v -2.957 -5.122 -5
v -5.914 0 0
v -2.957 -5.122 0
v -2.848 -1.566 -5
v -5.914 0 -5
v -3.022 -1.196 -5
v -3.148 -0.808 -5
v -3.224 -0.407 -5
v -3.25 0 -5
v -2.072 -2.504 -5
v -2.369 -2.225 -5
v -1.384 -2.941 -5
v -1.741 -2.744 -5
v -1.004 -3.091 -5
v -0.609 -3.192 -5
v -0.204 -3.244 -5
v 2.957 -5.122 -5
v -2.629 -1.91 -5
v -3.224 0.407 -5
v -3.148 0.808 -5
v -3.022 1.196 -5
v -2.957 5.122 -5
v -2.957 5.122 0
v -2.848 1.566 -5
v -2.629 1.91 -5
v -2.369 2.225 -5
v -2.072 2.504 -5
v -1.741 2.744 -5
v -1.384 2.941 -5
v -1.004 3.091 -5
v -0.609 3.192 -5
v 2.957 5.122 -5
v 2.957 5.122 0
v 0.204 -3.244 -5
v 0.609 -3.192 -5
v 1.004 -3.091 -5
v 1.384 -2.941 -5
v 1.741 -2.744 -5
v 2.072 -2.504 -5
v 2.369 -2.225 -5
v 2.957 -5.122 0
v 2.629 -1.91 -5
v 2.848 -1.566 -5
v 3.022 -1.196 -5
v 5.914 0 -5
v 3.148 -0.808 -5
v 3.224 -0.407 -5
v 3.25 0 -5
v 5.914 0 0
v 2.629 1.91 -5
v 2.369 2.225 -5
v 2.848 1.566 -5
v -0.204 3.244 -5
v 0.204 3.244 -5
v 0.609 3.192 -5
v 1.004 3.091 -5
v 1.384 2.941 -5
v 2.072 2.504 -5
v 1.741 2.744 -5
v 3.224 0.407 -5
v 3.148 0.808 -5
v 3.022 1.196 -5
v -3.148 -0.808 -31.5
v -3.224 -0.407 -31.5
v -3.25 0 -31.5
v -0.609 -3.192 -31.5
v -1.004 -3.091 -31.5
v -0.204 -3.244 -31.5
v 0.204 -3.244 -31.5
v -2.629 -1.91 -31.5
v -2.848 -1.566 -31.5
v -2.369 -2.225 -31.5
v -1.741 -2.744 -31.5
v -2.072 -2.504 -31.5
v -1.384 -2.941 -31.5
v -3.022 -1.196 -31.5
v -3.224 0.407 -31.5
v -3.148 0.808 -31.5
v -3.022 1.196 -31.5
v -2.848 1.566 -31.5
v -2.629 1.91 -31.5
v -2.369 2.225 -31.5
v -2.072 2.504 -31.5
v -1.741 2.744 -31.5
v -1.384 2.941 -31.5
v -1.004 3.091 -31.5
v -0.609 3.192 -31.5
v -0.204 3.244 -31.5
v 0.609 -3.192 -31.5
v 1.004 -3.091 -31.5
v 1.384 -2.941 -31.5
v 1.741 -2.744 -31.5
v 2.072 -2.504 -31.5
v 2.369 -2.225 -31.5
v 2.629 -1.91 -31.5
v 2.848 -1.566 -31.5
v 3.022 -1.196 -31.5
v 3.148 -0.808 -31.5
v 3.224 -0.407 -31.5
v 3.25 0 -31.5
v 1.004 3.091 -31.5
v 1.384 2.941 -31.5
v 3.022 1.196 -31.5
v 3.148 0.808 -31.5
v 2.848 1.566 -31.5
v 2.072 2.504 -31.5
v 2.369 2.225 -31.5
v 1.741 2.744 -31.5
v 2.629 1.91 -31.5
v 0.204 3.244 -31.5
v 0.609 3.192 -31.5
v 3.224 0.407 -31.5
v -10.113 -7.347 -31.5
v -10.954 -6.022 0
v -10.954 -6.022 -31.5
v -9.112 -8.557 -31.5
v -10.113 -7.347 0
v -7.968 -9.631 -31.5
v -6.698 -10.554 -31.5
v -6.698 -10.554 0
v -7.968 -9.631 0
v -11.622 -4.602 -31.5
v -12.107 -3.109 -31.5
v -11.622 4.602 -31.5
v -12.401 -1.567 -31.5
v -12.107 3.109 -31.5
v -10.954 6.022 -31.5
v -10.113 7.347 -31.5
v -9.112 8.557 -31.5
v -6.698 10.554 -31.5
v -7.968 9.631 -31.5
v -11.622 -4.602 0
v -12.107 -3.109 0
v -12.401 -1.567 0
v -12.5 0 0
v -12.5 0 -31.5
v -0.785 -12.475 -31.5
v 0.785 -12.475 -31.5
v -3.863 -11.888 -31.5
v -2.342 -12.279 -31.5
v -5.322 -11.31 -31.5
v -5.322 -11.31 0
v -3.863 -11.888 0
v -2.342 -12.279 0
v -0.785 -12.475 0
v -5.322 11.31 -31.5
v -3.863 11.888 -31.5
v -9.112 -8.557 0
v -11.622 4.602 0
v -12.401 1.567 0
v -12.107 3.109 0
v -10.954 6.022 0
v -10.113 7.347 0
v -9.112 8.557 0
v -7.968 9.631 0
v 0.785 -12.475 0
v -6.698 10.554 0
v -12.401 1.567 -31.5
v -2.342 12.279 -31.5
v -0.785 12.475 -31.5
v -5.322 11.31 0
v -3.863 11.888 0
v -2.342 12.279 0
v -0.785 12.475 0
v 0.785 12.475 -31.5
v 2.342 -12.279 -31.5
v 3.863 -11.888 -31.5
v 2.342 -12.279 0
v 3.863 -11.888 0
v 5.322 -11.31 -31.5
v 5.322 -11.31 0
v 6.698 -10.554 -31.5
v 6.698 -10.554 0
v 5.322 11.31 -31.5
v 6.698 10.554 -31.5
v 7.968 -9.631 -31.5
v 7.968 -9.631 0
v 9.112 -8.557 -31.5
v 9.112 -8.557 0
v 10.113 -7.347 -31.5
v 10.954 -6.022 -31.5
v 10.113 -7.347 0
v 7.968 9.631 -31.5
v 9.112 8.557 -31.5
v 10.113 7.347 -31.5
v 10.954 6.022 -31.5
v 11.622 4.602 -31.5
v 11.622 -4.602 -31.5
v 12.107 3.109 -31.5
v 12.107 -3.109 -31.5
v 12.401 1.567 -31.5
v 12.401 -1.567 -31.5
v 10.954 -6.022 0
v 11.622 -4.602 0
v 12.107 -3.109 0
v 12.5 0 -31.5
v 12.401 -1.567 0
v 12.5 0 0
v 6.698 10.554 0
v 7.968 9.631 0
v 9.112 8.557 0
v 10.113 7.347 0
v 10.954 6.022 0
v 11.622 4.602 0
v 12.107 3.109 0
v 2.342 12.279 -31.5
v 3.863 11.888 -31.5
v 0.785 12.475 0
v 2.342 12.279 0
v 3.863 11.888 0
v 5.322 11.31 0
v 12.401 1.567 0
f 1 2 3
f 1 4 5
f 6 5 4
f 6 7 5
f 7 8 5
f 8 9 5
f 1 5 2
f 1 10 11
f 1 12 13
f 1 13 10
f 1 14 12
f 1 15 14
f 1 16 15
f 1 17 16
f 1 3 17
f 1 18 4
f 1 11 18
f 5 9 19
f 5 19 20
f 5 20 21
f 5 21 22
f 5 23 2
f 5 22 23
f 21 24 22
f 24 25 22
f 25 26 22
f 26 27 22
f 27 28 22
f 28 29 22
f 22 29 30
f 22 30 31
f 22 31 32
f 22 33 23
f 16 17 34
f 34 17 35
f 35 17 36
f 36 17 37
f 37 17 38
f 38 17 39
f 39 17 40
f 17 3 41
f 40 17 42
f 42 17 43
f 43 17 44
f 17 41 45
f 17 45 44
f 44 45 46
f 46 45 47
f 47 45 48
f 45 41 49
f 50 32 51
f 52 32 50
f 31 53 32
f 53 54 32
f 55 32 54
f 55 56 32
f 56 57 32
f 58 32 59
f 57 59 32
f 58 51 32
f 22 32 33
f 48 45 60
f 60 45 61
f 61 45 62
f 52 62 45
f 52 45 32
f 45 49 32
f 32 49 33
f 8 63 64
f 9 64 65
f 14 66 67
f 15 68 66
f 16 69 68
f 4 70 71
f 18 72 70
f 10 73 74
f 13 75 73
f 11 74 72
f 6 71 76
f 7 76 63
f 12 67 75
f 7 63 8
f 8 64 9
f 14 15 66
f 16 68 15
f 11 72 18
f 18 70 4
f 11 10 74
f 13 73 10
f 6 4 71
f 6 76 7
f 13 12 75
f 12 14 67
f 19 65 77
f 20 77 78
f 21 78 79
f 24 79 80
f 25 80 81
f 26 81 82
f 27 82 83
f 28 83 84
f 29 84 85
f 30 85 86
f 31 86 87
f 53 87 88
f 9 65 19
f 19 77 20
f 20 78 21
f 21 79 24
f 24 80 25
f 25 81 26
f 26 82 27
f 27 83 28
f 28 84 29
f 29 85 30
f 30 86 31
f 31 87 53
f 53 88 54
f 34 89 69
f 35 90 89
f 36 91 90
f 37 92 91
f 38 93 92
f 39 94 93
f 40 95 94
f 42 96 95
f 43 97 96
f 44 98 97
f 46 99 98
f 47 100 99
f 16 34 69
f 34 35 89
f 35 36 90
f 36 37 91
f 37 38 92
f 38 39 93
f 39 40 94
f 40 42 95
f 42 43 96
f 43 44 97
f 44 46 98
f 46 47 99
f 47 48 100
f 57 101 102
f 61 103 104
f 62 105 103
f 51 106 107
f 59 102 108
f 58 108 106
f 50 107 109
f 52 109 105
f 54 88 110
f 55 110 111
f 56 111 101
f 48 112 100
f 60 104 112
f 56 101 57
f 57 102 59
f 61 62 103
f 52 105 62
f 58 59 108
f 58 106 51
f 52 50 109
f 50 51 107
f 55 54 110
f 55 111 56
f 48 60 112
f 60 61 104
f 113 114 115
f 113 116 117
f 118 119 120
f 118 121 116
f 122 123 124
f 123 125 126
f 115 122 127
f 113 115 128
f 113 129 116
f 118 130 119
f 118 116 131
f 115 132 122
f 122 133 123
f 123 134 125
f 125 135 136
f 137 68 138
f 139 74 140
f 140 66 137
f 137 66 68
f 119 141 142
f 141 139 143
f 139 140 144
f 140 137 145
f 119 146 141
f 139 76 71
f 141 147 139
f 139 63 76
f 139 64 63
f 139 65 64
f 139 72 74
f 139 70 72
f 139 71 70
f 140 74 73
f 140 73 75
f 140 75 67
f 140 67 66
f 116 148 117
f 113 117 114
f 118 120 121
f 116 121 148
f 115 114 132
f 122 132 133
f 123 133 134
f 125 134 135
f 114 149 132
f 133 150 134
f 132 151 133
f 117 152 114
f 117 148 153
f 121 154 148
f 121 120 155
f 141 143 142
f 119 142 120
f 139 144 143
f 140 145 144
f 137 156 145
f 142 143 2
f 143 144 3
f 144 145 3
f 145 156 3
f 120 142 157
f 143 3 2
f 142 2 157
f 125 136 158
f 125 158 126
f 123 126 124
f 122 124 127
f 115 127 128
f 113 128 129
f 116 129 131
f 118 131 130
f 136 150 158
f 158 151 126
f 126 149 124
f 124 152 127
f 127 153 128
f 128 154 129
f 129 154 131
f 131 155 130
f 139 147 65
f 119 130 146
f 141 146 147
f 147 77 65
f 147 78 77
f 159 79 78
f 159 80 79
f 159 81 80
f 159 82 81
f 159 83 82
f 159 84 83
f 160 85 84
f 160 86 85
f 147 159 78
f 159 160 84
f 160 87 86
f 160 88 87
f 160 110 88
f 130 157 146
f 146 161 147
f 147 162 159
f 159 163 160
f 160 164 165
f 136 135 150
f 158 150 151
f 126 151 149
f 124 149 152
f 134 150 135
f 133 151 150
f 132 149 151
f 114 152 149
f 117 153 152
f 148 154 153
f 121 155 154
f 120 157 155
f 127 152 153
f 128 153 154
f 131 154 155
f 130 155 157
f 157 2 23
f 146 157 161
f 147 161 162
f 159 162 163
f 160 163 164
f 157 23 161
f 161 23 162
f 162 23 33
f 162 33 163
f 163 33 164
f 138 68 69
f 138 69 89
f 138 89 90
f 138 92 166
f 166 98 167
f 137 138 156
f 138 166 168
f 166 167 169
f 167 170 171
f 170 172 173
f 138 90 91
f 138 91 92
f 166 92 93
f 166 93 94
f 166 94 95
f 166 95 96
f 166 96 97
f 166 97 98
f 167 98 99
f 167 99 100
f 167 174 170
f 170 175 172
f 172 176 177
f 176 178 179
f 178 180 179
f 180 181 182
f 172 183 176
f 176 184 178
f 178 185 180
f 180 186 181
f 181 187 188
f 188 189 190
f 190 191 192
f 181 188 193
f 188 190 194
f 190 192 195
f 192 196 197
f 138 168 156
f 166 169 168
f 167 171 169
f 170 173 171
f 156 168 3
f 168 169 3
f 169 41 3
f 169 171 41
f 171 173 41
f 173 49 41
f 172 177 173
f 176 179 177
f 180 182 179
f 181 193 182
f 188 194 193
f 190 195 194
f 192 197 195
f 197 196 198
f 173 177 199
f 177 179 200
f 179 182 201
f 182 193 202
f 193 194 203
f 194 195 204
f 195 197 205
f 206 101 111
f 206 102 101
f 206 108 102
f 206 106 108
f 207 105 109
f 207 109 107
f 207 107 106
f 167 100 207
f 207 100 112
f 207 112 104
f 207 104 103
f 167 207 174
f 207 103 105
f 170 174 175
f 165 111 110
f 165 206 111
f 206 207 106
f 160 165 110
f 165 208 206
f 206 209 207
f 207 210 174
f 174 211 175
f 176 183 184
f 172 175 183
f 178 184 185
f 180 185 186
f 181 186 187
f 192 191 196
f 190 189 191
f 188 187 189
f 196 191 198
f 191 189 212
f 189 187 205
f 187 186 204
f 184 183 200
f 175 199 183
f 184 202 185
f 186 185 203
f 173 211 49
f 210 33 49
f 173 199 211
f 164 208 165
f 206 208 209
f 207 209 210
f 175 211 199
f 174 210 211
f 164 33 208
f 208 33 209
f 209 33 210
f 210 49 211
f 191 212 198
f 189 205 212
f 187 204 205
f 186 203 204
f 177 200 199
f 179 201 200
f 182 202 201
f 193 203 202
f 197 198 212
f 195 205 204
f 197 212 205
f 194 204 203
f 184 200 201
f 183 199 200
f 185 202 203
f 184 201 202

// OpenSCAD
$fn = 50;


difference() {
	union() {
		translate(v = [0, 0, -31.5000000000]) {
			cylinder(h = 31.5000000000, r = 12.5000000000);
		}
	}
	union() {
		translate(v = [0, 0, 0]) {
			rotate(a = [0, 0, 0]) {
				difference() {
					union() {
						translate(v = [0, 0, -5]) {
							linear_extrude(height = 5) {
								polygon(points = [[5.9142500000, 0.0000000000], [2.9571250000, 5.1218907443], [-2.9571250000, 5.1218907443], [-5.9142500000, 0.0000000000], [-2.9571250000, -5.1218907443], [2.9571250000, -5.1218907443]]);
							}
						}
					}
					union();
				}
			}
		}
		#translate(v = [0, 0, -100.0000000000]) {
			cylinder(h = 200, r = 3.2500000000);
		}
	}
}
